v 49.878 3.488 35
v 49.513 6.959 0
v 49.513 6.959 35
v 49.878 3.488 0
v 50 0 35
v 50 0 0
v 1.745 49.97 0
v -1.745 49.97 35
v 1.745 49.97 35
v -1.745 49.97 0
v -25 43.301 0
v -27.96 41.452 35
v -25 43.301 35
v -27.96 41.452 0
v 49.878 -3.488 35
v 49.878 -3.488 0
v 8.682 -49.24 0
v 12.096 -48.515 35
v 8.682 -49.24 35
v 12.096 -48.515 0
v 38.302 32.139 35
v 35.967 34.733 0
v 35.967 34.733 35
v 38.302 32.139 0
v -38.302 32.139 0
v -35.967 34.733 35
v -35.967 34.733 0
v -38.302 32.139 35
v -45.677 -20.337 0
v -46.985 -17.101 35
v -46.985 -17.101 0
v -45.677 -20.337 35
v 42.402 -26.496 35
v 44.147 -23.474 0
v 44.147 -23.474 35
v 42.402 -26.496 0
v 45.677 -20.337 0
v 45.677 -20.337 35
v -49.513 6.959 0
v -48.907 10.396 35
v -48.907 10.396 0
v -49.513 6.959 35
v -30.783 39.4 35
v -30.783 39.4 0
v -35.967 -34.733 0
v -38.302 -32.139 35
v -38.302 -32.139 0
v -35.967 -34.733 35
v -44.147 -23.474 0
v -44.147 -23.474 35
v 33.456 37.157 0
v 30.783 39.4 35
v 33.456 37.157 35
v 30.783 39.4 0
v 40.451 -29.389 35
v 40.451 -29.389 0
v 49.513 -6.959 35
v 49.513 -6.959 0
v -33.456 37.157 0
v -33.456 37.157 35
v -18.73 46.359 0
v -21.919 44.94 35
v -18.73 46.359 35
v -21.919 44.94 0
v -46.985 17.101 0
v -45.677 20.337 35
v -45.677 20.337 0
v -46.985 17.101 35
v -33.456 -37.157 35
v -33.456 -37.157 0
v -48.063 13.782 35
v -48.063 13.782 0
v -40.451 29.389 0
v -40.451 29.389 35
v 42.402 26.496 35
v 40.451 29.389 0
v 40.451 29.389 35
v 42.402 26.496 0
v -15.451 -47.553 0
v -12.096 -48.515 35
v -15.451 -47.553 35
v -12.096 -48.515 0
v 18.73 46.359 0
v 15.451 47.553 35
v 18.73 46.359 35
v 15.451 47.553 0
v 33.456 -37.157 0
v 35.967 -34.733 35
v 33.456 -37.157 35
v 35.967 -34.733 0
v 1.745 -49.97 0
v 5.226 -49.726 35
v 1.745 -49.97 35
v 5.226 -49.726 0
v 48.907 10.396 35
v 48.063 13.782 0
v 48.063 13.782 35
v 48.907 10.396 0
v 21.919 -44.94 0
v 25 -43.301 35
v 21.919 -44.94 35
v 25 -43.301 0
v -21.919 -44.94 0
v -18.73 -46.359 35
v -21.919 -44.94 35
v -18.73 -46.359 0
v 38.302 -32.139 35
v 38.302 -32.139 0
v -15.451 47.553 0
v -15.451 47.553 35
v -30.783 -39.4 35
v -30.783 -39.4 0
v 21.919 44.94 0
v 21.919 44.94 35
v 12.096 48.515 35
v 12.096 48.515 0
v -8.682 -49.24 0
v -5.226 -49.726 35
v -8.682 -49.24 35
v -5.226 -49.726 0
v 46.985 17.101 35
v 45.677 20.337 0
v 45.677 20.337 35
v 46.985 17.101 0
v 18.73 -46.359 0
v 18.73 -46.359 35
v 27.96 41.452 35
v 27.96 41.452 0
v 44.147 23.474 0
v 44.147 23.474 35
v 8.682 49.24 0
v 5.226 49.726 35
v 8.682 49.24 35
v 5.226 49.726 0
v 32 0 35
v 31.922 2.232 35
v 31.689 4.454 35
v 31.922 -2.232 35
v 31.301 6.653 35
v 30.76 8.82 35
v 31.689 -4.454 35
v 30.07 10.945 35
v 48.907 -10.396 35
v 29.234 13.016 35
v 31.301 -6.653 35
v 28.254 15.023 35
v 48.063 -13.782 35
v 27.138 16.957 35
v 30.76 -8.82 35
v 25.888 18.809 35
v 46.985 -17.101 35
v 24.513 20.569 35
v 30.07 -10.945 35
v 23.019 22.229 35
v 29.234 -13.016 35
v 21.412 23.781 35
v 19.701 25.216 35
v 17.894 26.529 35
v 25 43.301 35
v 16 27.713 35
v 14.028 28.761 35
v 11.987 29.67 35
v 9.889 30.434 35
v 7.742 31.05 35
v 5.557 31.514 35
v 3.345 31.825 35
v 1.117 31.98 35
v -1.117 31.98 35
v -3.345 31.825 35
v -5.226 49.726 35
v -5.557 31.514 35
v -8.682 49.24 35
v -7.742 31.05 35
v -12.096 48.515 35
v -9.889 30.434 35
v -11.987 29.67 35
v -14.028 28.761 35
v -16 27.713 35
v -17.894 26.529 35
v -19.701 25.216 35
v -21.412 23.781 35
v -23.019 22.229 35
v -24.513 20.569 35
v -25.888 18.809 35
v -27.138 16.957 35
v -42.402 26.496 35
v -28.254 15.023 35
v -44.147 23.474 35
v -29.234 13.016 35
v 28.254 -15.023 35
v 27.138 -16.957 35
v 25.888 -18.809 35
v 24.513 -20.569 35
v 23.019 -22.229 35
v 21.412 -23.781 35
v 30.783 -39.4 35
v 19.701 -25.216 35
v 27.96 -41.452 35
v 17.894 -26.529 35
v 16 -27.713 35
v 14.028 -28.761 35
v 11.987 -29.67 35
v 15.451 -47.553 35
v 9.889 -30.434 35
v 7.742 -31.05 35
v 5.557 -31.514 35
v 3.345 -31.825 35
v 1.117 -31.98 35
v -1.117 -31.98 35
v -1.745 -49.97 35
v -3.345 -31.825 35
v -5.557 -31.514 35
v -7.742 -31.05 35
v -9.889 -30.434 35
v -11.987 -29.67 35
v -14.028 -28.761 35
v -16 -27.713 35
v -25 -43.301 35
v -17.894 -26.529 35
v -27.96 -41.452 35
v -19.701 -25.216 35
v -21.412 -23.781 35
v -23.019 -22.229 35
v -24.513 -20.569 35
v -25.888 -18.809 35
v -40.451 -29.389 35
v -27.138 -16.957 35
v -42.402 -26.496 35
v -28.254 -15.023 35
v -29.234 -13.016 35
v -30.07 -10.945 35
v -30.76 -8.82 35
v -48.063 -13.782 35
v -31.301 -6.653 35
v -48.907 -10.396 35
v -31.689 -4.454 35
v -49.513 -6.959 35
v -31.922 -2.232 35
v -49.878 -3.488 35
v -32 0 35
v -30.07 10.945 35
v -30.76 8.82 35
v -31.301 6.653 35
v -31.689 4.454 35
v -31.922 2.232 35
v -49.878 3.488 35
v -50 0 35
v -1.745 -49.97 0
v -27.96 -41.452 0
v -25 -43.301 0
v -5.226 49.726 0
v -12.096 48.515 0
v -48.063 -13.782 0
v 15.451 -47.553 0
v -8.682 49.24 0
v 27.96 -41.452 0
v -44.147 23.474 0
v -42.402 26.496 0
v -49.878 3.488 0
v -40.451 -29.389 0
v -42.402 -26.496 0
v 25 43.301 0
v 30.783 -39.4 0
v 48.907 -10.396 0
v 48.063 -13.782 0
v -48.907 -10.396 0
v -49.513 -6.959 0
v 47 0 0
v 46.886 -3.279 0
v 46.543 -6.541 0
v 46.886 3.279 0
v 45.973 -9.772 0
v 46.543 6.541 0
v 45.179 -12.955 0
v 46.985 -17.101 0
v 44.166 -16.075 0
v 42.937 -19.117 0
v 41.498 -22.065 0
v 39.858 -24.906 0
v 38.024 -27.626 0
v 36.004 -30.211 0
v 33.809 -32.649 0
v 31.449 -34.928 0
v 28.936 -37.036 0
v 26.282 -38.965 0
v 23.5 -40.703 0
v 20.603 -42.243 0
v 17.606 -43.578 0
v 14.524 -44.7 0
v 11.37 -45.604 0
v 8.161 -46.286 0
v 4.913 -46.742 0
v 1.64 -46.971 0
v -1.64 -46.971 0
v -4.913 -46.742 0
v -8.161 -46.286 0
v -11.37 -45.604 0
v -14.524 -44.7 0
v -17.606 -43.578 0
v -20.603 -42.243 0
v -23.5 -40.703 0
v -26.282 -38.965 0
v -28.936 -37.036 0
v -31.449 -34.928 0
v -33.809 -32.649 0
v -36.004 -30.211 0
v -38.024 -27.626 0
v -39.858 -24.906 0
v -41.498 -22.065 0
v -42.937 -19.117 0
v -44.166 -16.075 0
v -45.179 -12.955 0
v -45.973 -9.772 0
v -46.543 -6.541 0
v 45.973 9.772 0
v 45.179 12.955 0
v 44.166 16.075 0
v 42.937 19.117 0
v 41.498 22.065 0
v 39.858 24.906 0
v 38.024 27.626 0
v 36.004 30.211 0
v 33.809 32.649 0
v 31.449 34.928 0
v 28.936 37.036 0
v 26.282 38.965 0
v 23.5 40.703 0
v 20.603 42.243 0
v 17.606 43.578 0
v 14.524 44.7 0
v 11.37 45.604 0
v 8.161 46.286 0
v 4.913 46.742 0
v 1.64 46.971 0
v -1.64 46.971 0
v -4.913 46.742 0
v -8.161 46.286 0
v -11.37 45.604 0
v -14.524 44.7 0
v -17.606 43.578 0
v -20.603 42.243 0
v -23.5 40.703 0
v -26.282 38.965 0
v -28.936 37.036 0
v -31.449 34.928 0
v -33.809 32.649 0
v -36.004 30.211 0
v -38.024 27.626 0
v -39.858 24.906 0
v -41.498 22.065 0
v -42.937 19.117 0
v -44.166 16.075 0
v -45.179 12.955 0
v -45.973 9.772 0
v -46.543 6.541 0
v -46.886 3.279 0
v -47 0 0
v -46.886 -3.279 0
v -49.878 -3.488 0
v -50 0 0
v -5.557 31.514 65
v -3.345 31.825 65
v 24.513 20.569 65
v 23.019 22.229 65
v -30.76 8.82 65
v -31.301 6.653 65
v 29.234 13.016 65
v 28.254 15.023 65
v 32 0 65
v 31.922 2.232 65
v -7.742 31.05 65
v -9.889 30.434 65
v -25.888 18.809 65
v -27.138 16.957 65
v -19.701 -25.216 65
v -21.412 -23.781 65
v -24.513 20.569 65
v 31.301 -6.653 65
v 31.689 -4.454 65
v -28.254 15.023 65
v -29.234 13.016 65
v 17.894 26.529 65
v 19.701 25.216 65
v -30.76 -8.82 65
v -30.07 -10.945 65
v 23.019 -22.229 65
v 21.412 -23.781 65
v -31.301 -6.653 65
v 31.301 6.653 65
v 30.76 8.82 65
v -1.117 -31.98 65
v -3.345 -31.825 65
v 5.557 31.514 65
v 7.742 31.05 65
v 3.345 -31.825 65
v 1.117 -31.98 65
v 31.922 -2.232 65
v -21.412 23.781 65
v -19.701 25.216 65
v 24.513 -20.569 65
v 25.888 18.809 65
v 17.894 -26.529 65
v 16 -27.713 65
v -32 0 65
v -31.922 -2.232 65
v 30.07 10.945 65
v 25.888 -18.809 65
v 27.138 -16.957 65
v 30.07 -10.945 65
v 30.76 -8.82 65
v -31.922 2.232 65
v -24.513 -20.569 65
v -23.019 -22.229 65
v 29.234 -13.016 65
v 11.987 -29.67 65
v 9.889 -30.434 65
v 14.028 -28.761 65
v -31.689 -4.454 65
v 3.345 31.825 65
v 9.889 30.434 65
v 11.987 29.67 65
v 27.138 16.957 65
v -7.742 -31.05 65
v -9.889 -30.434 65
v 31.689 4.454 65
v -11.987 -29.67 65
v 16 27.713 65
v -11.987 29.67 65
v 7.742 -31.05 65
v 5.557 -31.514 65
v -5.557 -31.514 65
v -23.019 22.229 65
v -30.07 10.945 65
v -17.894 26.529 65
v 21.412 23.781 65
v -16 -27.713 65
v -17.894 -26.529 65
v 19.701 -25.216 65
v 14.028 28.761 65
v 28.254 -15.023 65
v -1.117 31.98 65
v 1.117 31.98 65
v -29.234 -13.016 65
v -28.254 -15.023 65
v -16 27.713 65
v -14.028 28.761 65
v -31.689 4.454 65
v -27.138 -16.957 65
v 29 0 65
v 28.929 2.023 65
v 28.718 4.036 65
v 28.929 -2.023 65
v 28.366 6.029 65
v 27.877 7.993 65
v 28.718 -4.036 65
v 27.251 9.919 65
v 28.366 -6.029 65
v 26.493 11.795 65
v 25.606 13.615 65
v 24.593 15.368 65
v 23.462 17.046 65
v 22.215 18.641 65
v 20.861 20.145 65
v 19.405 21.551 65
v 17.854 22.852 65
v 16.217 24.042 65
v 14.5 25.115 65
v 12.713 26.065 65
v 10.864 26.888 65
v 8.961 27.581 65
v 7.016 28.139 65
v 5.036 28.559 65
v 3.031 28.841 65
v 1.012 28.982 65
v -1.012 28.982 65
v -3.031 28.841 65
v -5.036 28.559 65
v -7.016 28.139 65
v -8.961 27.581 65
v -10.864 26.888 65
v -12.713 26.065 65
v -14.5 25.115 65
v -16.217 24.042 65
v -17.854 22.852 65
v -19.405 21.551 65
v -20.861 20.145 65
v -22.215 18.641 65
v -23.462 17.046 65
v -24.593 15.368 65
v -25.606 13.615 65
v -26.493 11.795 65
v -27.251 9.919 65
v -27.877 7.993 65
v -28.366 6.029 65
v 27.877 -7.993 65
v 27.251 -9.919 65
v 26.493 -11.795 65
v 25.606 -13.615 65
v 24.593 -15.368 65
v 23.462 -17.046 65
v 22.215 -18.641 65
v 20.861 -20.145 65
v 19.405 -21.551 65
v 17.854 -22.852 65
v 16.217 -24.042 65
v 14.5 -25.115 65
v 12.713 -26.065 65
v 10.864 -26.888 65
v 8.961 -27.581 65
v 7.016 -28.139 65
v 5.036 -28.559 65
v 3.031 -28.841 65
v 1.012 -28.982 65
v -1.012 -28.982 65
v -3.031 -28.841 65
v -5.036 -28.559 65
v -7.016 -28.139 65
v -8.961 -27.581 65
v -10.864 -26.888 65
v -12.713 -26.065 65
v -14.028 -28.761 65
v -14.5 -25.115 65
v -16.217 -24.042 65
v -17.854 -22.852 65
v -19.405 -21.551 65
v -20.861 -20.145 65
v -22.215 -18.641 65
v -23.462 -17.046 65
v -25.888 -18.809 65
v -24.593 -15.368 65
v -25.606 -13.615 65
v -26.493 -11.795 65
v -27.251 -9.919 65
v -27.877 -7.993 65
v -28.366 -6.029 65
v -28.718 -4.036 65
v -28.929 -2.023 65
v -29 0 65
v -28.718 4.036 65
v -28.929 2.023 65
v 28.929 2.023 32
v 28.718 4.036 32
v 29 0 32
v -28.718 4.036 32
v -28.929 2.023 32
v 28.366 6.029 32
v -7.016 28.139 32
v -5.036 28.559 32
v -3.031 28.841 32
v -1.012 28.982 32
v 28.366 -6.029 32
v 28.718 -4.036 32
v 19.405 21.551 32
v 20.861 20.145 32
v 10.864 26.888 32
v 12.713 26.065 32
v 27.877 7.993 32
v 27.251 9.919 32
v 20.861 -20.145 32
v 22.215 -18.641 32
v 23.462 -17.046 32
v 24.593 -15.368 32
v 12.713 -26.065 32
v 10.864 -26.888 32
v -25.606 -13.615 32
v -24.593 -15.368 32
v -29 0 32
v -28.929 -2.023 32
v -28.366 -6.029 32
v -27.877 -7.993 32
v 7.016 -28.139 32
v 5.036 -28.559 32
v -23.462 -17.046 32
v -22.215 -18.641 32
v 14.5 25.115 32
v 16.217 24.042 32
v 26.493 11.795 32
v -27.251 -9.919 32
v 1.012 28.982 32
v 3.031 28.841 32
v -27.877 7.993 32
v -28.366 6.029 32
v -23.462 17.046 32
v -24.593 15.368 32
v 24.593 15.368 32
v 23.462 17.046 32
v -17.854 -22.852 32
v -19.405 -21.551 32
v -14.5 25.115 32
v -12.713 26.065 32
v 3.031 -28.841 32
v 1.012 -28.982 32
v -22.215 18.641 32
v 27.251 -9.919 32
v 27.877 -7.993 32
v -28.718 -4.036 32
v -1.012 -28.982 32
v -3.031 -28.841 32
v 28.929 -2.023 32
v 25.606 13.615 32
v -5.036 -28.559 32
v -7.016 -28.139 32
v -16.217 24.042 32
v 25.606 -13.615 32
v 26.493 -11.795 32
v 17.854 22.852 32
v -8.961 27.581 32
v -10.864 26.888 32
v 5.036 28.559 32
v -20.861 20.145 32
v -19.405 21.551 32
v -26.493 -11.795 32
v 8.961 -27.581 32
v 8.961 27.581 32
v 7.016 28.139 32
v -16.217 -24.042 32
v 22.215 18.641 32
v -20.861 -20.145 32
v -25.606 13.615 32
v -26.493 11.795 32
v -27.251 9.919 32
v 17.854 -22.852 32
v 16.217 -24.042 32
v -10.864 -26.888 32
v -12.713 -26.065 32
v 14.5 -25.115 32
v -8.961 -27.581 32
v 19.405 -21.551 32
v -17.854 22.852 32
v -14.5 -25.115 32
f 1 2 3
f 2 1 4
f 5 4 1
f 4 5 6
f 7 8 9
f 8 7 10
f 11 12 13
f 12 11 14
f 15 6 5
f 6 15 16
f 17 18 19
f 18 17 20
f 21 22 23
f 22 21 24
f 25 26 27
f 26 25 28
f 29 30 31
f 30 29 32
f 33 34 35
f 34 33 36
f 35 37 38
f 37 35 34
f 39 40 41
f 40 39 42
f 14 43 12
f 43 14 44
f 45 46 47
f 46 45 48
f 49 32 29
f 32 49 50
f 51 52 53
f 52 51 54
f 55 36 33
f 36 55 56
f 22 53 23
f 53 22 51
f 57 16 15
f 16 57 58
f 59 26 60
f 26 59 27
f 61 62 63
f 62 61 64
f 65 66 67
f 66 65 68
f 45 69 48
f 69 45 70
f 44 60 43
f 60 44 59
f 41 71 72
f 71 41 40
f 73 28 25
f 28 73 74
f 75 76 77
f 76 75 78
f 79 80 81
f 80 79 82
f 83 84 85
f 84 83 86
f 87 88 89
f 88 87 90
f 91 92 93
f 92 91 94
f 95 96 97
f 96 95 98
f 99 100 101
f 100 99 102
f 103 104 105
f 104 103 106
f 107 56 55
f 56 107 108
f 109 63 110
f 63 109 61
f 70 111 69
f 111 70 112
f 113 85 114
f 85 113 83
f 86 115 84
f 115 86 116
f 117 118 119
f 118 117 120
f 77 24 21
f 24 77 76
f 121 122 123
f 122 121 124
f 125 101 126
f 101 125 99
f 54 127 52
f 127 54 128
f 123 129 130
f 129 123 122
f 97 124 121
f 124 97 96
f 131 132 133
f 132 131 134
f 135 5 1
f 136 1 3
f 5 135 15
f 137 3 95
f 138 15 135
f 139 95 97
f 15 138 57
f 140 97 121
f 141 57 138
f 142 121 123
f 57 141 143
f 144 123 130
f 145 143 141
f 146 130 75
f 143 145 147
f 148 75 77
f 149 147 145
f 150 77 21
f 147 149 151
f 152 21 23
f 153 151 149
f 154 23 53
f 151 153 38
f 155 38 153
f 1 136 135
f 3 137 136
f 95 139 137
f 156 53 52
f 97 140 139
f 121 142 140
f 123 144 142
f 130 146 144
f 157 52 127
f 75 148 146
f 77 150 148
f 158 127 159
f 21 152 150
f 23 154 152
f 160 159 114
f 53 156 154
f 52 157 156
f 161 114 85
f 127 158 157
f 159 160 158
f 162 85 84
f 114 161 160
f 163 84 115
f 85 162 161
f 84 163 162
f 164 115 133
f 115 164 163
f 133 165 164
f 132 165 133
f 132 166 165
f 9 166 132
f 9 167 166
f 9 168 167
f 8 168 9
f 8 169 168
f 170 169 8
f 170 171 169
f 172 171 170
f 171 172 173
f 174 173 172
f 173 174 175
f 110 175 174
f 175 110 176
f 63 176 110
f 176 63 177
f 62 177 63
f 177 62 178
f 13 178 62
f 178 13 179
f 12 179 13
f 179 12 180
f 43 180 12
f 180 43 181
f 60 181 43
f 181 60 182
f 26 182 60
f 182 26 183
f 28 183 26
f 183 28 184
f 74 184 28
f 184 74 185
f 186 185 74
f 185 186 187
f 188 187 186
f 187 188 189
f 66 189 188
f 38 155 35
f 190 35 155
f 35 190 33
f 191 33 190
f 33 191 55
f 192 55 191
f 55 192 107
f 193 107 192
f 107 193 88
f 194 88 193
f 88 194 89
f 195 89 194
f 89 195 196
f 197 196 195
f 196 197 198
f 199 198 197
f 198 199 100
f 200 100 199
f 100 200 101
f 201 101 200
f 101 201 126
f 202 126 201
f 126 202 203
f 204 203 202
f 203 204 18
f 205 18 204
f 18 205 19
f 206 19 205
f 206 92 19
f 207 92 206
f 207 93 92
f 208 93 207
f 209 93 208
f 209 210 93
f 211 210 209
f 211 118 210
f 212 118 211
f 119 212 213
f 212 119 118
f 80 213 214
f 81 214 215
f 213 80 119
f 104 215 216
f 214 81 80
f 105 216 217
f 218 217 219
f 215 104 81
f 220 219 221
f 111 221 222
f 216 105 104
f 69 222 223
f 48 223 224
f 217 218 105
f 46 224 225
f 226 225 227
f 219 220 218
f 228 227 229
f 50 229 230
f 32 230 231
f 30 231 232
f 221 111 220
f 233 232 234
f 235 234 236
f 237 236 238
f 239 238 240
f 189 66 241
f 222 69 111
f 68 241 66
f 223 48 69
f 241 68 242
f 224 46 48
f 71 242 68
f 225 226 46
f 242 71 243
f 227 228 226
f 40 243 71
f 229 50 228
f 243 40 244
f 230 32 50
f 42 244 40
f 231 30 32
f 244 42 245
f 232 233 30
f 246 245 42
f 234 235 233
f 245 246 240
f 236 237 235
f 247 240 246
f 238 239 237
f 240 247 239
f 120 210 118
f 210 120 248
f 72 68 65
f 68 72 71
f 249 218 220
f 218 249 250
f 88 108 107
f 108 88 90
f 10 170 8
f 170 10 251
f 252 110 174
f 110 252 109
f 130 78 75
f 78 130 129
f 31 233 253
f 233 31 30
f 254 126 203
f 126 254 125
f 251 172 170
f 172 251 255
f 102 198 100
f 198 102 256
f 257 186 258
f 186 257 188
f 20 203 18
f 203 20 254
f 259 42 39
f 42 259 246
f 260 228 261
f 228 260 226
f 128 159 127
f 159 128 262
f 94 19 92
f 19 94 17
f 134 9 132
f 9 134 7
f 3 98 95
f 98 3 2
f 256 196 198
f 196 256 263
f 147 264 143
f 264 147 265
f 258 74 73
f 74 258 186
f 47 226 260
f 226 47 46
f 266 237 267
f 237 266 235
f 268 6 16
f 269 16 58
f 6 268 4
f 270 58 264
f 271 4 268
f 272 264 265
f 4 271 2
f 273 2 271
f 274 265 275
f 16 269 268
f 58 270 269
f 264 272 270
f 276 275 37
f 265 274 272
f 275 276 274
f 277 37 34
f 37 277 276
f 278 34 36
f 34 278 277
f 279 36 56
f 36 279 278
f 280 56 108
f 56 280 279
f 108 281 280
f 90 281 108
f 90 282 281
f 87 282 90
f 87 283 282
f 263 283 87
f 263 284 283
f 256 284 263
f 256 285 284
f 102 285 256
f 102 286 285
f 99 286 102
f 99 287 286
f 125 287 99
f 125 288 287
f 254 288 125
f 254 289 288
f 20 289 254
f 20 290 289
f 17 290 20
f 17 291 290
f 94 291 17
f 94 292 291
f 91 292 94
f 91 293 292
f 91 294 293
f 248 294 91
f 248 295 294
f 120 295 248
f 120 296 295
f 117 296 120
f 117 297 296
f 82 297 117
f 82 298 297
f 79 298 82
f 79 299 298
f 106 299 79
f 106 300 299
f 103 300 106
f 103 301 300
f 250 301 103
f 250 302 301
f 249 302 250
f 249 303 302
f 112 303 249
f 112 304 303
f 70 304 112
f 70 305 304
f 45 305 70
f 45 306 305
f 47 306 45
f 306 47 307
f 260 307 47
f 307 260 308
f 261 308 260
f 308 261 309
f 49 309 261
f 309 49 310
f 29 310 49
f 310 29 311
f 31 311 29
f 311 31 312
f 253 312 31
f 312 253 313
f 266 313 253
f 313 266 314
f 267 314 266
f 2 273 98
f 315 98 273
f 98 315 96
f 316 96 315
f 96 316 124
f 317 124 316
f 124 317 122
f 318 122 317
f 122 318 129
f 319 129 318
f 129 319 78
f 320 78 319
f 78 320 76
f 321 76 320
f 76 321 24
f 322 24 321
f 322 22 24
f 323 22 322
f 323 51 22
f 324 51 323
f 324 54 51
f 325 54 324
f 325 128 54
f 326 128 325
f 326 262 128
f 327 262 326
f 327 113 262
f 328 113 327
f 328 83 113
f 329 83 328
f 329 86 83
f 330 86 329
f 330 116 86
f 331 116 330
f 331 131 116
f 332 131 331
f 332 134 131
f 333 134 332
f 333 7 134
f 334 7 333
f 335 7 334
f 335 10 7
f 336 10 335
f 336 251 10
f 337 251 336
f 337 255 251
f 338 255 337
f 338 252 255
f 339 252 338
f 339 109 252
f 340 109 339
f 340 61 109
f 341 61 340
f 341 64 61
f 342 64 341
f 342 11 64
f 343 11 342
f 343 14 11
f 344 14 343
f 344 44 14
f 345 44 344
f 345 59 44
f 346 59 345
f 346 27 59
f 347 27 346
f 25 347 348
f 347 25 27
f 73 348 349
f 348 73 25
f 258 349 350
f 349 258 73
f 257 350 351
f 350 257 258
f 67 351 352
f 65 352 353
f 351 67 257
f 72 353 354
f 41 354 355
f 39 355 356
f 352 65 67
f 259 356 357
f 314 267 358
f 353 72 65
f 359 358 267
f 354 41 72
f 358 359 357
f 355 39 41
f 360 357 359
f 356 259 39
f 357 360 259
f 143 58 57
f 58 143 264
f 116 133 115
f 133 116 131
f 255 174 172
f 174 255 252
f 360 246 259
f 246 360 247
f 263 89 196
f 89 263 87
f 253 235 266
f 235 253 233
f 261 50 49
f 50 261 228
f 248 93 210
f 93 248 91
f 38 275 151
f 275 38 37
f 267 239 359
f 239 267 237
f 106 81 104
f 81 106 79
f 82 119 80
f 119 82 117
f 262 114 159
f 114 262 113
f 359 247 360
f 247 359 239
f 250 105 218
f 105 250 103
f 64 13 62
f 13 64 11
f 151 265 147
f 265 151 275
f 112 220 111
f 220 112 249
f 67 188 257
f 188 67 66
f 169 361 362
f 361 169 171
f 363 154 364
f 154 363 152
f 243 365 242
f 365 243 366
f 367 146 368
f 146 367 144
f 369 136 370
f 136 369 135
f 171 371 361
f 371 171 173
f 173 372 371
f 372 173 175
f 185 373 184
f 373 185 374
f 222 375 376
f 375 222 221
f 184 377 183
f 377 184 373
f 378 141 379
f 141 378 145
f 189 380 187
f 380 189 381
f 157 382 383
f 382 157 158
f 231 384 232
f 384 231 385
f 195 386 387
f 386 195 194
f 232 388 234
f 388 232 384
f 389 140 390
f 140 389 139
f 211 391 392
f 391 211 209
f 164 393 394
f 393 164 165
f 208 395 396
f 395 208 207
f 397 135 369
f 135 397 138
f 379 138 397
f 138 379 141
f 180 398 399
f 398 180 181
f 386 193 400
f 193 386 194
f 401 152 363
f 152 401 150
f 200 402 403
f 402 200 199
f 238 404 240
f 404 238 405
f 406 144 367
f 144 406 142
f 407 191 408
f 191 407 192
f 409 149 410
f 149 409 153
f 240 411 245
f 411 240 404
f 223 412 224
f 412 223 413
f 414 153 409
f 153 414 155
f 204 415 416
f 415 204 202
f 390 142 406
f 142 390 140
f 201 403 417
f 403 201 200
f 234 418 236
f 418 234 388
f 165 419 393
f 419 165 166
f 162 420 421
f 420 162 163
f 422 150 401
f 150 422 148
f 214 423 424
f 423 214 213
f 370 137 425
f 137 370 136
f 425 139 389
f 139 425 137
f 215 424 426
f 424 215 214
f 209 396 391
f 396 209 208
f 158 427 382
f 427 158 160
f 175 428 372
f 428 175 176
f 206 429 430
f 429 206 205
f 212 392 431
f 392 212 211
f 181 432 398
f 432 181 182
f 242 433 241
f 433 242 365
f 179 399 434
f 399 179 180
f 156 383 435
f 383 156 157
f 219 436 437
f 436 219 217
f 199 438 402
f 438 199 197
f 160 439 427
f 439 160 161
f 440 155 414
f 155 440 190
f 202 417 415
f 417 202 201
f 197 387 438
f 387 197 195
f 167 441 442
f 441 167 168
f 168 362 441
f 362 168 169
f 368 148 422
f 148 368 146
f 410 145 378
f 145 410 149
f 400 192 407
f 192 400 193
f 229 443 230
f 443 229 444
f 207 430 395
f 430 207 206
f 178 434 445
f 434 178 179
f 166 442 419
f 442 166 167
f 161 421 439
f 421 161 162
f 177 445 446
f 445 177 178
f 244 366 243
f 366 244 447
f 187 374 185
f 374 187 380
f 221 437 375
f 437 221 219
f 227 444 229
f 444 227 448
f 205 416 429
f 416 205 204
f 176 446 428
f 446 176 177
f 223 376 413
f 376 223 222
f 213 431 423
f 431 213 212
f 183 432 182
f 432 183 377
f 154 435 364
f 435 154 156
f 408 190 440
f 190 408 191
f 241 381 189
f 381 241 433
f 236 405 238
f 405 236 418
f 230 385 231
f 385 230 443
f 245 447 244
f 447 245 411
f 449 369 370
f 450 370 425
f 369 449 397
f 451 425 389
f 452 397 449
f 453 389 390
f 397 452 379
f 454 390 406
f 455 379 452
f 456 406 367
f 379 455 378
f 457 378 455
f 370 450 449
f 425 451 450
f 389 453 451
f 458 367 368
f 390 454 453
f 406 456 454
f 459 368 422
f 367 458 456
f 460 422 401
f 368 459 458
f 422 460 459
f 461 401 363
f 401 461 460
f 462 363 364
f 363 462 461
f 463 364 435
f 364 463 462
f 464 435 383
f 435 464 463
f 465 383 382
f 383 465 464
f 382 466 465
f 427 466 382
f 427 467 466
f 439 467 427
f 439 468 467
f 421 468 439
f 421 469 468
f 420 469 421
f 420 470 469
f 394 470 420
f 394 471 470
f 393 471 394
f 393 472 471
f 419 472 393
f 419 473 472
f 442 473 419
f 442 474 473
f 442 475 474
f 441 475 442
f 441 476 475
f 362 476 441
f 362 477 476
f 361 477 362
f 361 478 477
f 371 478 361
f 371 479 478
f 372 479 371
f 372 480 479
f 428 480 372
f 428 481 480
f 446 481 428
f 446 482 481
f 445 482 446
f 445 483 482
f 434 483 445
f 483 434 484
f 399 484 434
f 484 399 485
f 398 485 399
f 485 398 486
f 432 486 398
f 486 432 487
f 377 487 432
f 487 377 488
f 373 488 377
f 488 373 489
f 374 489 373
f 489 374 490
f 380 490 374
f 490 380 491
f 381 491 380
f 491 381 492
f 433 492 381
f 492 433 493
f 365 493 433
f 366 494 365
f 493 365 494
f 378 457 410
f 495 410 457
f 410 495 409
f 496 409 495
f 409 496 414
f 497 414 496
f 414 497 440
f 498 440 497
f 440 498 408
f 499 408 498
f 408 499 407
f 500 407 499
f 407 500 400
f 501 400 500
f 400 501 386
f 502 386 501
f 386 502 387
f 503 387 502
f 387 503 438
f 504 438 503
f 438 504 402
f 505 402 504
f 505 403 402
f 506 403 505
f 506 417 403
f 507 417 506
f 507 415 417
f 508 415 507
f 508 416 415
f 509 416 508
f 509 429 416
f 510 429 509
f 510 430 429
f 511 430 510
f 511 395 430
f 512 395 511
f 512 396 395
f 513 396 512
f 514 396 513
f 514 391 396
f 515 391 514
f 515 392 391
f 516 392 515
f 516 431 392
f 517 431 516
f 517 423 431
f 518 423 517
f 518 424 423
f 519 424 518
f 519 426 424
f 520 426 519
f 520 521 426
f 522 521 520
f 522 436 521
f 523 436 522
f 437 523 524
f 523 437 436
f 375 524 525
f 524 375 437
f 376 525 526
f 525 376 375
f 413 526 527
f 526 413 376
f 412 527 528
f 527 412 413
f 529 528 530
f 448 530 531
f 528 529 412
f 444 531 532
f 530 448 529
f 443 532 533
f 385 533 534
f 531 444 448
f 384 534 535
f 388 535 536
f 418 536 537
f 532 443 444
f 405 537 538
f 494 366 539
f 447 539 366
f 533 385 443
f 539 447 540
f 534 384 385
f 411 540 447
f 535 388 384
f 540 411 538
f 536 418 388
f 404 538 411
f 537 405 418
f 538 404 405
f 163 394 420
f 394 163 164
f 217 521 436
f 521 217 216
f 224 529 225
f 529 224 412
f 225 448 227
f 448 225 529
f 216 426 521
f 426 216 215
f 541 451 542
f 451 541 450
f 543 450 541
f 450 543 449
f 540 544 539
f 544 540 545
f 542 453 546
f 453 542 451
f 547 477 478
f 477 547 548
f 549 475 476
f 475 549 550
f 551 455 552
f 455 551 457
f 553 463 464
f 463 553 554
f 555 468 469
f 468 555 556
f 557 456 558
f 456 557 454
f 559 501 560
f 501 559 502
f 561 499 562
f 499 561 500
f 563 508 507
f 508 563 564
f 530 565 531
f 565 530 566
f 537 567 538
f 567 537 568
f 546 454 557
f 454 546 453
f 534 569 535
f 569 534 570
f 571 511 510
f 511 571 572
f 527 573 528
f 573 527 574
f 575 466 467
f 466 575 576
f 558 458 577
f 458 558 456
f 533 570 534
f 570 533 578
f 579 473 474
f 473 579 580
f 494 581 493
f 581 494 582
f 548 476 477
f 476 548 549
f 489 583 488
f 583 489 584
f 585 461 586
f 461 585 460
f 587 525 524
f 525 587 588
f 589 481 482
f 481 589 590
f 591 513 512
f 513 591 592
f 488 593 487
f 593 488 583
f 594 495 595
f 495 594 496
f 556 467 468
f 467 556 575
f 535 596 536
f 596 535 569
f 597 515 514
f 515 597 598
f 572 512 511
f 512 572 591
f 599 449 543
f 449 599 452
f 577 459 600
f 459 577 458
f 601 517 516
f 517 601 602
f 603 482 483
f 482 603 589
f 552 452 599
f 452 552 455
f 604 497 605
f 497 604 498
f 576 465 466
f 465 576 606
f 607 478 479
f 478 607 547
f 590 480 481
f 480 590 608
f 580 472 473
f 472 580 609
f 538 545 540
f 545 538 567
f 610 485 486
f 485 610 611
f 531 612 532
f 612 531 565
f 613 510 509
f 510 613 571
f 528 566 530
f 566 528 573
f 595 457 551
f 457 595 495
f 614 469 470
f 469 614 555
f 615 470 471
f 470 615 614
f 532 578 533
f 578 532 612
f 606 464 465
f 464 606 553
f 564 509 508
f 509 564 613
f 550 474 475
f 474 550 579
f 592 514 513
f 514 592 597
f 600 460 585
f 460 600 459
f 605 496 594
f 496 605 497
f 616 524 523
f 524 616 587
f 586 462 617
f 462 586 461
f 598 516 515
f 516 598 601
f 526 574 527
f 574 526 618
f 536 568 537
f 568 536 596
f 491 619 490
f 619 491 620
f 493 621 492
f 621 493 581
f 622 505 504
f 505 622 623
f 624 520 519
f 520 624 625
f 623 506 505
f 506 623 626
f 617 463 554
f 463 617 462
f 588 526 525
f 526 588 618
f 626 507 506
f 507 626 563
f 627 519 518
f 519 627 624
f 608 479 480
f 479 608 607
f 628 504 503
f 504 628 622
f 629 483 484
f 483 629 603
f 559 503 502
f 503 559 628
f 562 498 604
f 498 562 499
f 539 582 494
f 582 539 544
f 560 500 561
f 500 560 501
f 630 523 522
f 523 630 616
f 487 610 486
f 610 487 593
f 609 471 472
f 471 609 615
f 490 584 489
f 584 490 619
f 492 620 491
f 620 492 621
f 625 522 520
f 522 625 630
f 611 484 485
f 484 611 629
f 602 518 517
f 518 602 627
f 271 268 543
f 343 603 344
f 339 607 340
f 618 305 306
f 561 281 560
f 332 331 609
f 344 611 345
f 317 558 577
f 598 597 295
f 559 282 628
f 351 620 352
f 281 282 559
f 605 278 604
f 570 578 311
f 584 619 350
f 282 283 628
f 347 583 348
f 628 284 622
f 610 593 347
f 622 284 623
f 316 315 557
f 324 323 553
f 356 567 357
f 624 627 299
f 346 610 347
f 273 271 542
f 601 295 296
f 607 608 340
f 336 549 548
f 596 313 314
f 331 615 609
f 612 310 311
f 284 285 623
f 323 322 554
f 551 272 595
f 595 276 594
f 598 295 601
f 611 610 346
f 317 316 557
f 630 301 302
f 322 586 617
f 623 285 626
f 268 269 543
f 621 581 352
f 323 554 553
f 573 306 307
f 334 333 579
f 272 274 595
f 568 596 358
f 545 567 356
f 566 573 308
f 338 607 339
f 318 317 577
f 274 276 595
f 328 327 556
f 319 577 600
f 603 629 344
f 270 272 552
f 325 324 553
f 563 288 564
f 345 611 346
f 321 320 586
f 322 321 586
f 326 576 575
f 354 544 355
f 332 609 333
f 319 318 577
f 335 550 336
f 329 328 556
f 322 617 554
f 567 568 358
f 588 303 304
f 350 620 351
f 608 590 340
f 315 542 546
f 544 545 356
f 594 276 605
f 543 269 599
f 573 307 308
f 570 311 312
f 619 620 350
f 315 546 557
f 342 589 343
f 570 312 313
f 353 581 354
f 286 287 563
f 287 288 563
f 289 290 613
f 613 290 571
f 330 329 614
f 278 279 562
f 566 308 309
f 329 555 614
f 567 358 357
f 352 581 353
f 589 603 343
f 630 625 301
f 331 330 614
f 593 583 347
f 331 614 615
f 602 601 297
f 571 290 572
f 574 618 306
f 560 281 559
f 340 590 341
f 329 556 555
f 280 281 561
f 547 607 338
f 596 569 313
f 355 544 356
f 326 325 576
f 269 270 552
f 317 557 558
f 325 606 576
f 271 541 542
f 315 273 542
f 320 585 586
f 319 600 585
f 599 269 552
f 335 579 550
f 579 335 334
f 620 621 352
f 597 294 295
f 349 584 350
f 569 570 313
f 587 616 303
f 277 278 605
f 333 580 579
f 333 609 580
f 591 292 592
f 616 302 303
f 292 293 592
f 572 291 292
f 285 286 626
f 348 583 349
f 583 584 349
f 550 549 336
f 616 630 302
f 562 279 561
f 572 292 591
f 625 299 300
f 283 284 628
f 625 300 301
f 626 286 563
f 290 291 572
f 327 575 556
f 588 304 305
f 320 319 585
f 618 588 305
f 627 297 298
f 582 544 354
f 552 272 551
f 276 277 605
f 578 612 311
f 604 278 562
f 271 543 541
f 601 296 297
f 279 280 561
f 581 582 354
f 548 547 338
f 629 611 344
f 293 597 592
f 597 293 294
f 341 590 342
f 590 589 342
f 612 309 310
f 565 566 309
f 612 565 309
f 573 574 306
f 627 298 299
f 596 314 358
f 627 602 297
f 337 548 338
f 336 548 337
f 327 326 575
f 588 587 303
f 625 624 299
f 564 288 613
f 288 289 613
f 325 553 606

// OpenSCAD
/*
 
    Standerd hose adapter for 100mm pipe
    Anton Augustsson
    
*/

$fn=90;

mountLenght  = 35;
mountRadius  = 100/2;
hoseLenght   = 30+mountLenght;
hoseRadius   = 58/2;

wallThickness = 3;
wallesRadius = hoseRadius+wallThickness;



difference() {
union(){
cylinder(
    h = mountLenght, 
    r = mountRadius);

cylinder(
    h = hoseLenght, 
    r = wallesRadius);

}
union() {
cylinder(
    h = hoseLenght+1, 
    r = hoseRadius);

cylinder(
    h = mountLenght-wallThickness, 
    r1 = mountRadius-wallThickness,
    r2 = hoseRadius);

}}
